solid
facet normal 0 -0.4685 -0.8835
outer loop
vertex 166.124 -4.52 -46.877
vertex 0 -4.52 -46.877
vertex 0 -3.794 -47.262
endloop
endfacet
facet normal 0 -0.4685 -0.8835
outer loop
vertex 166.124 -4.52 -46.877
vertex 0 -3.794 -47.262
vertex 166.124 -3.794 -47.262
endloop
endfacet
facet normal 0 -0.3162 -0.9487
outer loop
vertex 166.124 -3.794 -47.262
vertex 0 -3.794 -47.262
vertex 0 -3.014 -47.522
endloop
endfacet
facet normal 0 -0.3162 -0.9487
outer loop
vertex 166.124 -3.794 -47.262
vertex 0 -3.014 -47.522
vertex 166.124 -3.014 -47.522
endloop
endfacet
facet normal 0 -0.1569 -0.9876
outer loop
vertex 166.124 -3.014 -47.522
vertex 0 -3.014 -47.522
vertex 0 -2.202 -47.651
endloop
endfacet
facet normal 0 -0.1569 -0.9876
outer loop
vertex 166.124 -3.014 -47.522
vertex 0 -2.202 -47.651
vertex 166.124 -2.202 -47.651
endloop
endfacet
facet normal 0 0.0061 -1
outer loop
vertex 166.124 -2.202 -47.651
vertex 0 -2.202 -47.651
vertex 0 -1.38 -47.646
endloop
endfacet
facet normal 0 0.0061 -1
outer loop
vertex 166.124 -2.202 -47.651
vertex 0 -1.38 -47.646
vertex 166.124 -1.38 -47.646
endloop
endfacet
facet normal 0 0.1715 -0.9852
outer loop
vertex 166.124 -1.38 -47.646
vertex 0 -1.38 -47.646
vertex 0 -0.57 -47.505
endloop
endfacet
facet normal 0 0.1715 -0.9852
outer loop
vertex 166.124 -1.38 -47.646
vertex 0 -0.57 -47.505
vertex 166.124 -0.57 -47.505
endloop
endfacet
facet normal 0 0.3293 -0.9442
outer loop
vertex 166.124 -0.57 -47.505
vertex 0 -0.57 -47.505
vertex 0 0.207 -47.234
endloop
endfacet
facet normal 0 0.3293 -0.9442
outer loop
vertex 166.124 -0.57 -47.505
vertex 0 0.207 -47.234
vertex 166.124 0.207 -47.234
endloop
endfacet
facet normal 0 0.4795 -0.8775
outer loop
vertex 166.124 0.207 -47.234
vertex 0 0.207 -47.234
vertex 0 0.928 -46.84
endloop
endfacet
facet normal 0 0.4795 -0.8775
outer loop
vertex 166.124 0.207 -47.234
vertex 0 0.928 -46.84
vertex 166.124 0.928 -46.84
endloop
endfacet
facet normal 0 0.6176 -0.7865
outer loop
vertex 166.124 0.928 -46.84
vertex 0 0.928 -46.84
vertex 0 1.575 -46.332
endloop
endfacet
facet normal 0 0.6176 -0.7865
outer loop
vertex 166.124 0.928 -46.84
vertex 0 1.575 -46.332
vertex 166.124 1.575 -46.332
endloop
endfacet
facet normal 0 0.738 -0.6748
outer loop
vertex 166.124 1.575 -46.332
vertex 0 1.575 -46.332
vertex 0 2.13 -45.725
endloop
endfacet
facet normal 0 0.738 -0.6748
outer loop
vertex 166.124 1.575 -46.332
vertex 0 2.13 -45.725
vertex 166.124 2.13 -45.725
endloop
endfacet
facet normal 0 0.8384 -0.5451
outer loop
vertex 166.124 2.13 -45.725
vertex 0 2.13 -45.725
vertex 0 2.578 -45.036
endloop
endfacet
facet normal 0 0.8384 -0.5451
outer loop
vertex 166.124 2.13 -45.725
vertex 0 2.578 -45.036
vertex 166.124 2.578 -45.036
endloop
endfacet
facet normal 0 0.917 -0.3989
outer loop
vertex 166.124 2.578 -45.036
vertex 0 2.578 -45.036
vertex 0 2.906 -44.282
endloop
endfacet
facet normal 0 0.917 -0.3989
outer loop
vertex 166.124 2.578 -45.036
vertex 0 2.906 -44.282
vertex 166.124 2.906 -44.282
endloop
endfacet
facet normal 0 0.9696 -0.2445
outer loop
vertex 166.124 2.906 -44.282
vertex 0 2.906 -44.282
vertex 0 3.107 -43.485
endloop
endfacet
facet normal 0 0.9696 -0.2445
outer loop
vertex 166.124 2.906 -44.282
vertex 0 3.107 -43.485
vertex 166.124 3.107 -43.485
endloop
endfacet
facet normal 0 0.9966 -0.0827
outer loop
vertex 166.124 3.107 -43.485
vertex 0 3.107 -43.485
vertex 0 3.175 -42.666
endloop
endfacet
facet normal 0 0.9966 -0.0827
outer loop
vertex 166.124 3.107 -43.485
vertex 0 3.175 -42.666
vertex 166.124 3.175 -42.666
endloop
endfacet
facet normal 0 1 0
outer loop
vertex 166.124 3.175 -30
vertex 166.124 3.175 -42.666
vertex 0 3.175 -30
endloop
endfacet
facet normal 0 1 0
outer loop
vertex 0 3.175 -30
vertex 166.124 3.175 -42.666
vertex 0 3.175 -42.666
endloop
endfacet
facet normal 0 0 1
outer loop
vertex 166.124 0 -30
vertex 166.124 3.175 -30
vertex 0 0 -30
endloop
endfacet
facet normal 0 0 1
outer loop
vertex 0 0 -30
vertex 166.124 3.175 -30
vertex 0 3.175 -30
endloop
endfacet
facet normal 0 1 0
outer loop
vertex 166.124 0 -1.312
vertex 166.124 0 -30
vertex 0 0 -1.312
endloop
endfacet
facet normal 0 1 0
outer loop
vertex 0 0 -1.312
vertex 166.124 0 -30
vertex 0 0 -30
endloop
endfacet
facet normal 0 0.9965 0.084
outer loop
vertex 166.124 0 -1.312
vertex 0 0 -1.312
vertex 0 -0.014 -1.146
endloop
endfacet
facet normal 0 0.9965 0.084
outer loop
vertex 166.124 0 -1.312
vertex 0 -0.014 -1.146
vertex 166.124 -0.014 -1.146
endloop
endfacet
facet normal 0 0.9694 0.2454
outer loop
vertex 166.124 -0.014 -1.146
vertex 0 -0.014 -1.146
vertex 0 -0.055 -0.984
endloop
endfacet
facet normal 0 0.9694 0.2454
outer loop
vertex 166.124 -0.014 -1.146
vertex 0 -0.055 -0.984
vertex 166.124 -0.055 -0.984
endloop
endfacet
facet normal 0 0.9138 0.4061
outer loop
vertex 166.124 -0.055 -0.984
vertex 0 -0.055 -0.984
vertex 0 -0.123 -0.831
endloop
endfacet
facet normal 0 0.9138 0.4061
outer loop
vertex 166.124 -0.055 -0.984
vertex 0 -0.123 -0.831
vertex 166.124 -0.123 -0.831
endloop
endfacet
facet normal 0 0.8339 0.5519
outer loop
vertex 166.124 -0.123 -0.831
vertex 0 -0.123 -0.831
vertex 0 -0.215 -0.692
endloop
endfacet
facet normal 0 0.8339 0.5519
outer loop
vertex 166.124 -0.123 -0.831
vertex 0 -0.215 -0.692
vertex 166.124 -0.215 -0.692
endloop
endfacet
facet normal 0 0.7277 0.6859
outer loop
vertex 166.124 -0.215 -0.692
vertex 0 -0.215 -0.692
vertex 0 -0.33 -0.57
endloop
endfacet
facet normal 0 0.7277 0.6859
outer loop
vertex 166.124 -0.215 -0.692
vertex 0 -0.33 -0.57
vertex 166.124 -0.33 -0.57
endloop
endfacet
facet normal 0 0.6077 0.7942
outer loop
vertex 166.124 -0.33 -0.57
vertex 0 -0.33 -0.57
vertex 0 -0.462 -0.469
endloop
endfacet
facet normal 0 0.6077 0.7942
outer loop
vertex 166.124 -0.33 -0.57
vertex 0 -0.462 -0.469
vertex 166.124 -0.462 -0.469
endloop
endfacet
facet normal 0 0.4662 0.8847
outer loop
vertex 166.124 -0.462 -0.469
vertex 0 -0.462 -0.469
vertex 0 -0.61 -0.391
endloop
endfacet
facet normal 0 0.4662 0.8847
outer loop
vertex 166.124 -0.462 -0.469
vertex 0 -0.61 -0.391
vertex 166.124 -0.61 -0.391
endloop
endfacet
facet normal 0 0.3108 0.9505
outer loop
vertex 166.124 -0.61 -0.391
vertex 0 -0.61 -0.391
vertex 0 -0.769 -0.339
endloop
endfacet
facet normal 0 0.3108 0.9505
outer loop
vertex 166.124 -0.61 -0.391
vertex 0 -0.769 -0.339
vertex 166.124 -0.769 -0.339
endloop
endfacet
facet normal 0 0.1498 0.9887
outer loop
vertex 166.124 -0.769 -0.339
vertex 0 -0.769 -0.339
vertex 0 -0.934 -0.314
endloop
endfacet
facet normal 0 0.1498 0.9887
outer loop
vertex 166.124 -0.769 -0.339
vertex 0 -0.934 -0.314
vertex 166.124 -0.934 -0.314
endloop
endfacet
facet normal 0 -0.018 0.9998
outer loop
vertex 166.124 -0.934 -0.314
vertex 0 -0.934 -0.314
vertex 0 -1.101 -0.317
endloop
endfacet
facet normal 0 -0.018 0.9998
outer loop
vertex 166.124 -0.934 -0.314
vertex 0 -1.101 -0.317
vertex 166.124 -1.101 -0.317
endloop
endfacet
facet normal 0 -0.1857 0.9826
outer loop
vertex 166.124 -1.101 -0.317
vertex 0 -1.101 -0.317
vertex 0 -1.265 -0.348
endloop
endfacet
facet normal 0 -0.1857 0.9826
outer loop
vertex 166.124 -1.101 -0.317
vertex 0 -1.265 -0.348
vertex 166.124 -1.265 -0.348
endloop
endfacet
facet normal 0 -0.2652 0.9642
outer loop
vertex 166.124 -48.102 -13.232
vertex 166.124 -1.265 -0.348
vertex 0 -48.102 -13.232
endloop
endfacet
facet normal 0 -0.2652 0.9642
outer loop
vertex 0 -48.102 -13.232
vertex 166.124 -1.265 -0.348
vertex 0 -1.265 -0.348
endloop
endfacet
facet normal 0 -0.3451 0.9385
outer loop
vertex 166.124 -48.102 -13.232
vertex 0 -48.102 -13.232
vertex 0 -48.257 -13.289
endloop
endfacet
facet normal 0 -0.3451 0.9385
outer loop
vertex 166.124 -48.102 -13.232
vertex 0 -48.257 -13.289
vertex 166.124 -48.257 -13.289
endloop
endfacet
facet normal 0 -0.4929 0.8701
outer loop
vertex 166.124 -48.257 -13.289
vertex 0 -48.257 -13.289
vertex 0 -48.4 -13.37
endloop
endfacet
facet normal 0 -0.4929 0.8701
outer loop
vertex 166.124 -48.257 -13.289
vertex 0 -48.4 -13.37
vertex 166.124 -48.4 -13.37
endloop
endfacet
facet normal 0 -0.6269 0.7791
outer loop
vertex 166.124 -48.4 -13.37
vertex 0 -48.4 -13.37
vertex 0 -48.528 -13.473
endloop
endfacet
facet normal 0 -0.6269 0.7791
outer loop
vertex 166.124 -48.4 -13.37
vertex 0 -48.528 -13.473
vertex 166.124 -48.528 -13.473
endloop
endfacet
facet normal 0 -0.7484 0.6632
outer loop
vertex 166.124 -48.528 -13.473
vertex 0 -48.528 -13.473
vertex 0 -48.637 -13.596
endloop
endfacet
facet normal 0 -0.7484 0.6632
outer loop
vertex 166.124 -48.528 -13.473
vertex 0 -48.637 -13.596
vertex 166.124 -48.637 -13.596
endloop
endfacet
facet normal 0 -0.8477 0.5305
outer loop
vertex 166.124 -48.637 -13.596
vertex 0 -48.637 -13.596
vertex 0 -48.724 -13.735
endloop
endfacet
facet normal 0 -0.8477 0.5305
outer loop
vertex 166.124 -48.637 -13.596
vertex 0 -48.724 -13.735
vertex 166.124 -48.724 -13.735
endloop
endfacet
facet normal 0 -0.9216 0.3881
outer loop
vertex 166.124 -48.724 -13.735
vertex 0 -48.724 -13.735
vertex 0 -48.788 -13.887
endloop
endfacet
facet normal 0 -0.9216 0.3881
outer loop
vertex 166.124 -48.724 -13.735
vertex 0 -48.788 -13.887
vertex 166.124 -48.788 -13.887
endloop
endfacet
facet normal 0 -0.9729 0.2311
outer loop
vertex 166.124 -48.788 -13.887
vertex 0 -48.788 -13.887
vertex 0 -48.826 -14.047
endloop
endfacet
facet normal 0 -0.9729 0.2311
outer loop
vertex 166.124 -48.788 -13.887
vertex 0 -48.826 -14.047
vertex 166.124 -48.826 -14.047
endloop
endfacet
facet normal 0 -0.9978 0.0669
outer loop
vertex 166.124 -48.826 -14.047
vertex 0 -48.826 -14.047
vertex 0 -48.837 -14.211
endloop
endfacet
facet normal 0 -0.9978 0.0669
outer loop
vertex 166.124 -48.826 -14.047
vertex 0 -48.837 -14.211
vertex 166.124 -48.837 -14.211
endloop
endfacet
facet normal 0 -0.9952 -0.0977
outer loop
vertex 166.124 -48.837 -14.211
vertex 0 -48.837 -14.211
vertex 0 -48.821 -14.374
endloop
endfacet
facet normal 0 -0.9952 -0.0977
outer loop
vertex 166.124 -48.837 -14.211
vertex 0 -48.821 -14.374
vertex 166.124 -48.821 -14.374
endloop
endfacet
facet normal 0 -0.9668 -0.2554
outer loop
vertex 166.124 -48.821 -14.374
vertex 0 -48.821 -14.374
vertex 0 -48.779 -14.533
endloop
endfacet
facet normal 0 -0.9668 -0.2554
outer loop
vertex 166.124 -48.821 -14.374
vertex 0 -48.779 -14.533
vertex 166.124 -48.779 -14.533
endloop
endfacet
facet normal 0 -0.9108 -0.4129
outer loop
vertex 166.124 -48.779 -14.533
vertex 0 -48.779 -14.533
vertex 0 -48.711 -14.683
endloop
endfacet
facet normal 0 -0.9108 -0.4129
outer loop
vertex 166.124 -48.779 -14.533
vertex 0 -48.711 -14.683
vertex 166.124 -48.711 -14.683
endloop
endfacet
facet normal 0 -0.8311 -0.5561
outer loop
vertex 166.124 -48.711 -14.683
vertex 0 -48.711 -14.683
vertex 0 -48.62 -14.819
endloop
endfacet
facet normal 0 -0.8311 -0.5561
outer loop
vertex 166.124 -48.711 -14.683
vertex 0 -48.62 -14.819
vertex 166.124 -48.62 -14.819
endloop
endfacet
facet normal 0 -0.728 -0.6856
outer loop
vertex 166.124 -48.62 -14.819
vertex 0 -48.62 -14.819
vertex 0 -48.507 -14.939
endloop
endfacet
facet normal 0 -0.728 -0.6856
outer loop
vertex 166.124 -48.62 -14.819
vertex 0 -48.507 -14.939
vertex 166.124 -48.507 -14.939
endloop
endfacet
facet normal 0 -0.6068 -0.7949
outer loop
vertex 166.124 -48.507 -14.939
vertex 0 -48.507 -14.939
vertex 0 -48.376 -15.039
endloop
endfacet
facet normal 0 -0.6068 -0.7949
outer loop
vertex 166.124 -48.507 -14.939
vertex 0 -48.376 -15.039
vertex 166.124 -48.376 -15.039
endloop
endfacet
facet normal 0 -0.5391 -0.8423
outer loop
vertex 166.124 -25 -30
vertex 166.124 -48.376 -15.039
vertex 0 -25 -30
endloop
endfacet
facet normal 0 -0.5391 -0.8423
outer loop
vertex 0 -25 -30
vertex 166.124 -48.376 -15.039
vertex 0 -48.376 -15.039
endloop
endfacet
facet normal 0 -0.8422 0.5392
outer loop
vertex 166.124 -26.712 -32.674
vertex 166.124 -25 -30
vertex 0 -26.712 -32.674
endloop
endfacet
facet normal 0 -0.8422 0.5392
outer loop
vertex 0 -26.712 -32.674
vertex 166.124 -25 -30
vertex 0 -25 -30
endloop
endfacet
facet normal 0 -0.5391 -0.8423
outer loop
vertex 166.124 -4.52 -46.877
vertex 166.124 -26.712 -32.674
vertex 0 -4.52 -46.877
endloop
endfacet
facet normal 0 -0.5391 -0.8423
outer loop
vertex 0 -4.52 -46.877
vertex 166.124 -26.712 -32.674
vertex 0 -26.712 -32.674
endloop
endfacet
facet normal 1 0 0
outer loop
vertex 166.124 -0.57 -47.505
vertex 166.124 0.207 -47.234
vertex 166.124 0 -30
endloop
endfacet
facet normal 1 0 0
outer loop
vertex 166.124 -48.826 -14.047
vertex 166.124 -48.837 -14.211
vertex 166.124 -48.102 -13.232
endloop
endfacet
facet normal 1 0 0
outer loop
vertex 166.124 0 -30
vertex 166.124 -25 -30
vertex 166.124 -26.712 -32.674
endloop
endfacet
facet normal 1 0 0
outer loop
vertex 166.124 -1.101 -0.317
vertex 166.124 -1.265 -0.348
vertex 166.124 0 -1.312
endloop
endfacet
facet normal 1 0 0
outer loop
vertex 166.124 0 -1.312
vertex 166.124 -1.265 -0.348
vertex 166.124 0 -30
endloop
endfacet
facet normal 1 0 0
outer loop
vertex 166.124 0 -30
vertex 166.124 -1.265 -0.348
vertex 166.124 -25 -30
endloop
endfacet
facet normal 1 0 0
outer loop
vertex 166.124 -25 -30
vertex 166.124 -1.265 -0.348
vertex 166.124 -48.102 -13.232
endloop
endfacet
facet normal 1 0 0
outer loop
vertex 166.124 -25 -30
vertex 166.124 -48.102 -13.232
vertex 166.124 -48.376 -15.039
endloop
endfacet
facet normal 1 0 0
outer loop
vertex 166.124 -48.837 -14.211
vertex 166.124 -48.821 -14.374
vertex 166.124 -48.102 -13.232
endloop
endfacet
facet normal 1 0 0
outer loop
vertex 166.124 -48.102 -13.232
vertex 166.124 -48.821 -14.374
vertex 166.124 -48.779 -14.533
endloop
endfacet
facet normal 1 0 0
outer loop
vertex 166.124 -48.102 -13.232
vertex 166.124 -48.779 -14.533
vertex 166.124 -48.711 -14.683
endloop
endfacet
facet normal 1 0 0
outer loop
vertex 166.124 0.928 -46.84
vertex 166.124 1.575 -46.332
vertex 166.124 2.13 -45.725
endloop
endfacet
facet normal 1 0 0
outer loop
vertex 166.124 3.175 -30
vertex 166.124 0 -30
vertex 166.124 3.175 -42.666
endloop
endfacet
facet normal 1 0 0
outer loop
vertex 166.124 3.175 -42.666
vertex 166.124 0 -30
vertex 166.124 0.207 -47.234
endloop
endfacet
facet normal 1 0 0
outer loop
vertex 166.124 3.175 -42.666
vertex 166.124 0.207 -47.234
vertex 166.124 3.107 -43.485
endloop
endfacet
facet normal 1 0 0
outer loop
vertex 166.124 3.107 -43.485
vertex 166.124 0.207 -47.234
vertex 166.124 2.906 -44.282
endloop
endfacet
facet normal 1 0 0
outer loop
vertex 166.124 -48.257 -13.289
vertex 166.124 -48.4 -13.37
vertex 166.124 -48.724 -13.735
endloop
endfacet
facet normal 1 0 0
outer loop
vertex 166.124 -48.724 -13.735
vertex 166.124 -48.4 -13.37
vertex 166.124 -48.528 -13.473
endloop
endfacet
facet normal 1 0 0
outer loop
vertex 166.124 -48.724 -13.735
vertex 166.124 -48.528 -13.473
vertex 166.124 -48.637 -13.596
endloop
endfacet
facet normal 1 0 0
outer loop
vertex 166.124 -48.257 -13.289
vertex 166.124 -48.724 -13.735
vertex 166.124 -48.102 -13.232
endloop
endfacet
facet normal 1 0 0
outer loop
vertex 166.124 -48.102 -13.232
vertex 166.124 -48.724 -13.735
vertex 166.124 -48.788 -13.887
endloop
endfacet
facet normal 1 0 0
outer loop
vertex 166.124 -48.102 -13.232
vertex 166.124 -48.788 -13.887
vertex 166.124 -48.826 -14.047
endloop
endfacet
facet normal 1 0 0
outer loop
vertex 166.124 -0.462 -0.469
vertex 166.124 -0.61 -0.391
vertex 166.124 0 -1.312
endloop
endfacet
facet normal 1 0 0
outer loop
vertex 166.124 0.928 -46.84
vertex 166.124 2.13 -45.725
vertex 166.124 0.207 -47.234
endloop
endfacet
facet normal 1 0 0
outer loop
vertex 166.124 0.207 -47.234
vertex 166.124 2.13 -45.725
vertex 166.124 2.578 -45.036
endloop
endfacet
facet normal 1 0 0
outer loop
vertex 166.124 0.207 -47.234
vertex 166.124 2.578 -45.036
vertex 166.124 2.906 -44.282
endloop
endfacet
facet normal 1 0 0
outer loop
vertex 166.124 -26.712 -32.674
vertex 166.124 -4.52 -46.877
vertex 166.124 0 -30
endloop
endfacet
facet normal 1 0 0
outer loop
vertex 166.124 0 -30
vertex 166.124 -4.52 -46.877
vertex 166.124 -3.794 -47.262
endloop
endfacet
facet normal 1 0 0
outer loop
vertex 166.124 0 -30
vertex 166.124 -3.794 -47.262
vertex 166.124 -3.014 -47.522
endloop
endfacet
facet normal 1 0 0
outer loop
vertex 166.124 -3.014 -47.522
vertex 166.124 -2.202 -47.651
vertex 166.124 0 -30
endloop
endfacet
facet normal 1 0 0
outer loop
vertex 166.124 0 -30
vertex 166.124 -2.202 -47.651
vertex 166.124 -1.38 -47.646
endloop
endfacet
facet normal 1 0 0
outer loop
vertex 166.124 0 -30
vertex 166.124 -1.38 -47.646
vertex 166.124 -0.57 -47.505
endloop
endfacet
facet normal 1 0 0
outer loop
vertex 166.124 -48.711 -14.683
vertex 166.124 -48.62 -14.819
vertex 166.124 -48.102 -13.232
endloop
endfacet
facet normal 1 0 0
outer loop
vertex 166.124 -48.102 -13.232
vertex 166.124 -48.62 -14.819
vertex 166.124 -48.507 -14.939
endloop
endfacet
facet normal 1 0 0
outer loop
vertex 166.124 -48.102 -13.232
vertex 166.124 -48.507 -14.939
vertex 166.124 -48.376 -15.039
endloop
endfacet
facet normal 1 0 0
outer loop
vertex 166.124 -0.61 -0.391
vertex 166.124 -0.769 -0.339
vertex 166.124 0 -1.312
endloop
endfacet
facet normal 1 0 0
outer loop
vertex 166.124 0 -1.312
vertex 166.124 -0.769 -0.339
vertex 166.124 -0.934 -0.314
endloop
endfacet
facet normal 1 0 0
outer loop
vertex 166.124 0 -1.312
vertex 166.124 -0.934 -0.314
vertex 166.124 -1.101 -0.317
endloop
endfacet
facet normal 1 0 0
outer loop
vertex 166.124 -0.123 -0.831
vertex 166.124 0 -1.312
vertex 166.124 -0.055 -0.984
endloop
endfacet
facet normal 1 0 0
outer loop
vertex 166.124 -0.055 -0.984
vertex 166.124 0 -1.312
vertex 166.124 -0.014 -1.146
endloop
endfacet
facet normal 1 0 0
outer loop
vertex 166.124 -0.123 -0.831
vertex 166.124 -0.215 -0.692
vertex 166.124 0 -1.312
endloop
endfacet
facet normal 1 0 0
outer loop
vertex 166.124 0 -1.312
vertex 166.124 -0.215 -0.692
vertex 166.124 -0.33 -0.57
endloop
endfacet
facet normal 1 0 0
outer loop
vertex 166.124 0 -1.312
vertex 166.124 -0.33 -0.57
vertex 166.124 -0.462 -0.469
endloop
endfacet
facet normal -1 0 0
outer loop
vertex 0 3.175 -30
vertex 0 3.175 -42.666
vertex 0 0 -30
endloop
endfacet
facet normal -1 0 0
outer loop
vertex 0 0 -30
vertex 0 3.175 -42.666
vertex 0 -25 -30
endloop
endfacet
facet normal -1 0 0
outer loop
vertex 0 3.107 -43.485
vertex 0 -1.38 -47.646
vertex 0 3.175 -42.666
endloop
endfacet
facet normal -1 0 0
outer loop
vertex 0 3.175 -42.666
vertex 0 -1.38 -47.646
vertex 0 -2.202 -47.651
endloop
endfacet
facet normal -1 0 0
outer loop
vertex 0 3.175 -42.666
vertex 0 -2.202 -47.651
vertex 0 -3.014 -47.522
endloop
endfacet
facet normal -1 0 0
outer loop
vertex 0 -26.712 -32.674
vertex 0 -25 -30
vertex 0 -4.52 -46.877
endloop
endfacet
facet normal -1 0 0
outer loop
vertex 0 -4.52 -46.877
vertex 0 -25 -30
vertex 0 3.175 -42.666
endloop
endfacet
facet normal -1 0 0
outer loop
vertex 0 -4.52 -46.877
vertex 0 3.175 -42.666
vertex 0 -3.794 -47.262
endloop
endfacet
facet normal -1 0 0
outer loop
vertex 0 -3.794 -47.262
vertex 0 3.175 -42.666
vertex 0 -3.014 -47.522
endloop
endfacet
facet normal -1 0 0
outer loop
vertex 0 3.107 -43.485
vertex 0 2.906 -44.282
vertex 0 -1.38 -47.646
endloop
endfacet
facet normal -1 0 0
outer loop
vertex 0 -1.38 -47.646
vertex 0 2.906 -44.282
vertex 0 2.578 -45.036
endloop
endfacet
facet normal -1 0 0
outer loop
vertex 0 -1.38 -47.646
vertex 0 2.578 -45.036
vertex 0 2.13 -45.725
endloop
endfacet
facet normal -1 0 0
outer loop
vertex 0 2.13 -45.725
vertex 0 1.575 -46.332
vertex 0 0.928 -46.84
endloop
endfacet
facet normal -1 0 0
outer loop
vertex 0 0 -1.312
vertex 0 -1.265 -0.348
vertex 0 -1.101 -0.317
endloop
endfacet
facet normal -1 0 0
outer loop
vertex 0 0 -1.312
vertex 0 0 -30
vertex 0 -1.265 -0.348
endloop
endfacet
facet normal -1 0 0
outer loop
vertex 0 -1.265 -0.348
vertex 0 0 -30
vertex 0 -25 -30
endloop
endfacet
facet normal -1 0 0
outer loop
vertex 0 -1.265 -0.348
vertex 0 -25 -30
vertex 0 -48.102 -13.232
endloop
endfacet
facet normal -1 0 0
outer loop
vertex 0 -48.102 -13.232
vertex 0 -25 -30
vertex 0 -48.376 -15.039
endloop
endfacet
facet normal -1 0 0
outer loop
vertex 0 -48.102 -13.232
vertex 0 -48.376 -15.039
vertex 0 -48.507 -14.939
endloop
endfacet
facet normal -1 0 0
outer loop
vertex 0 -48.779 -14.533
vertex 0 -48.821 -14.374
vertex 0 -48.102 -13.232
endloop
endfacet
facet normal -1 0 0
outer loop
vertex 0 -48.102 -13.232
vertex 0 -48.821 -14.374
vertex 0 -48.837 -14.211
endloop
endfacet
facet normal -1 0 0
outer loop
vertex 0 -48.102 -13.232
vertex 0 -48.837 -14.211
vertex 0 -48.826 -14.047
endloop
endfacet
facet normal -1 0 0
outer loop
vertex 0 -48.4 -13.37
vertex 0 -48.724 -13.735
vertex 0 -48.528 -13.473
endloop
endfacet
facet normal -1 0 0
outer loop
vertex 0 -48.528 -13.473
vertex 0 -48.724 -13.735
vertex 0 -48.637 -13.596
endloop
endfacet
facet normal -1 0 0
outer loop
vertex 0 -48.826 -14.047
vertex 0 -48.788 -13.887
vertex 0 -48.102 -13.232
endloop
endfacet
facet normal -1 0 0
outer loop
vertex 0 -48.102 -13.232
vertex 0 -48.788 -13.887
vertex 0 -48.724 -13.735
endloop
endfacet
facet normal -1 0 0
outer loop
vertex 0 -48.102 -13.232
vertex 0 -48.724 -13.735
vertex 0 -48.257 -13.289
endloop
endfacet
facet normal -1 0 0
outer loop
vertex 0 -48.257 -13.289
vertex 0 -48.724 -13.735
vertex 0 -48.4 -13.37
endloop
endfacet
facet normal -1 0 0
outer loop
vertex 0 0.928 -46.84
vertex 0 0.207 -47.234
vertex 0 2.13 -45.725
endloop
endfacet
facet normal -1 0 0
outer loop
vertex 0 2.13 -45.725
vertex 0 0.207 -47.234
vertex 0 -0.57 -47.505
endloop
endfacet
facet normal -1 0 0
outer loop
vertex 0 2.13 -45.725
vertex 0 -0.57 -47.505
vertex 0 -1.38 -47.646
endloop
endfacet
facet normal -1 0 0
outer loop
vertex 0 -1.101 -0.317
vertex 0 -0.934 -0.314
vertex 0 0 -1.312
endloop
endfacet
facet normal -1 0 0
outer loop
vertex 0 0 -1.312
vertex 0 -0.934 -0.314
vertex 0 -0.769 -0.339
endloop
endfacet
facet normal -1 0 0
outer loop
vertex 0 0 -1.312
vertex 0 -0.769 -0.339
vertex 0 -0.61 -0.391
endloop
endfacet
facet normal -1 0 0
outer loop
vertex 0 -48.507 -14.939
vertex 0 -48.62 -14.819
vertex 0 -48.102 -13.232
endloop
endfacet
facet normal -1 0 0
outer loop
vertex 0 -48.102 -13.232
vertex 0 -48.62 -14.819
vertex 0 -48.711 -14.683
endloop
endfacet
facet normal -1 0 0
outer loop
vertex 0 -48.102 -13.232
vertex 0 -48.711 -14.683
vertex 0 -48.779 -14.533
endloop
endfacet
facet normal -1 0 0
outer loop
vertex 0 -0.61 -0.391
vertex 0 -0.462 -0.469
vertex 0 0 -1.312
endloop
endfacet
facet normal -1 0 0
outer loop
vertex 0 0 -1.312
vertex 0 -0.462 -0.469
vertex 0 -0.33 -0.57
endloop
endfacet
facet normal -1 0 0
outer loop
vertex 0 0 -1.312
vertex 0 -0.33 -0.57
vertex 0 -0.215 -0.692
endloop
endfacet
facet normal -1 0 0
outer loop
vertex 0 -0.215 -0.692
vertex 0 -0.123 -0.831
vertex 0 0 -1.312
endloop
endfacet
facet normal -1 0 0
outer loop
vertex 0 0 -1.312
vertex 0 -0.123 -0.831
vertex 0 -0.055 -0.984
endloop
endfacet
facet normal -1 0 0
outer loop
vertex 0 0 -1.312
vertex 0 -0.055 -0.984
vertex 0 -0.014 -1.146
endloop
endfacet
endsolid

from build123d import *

# Parameters (mm, degrees)
BOSS_EXTRUDE1_DEPTH = 166.124


with BuildPart() as part:
    # Sketch1 → Boss-Extrude1 (new body)
    with BuildSketch(Plane(origin=(0, 0, 0), x_dir=(0, 0, -1), z_dir=(1, 0, 0))):
        with BuildLine():
            Line((1.31223354, 0), (30, 0))
            Line((30, 0), (30, 3.175))
            Line((30, 3.175), (42.665653227, 3.175))
            ThreePointArc((42.665653227, 3.175), (47.051803052, 0.575351996), (46.876974623, -4.520324118))
            Line((46.876974623, -4.520324118), (32.674189086, -26.711530815))
            Line((32.674189086, -26.711530815), (30, -25))
            Line((30, -25), (15.038789484, -48.376211248))
            ThreePointArc((15.038789484, -48.376211248), (14.046652384, -48.825851708), (13.232341269, -48.102380923))
            Line((13.232341269, -48.102380923), (0.348049605, -1.265234498))
            ThreePointArc((0.348049605, -1.265234498), (0.516861143, -0.393878931), (1.31223354, 0))
        make_face()
    extrude(amount=BOSS_EXTRUDE1_DEPTH)


solid = part.part
